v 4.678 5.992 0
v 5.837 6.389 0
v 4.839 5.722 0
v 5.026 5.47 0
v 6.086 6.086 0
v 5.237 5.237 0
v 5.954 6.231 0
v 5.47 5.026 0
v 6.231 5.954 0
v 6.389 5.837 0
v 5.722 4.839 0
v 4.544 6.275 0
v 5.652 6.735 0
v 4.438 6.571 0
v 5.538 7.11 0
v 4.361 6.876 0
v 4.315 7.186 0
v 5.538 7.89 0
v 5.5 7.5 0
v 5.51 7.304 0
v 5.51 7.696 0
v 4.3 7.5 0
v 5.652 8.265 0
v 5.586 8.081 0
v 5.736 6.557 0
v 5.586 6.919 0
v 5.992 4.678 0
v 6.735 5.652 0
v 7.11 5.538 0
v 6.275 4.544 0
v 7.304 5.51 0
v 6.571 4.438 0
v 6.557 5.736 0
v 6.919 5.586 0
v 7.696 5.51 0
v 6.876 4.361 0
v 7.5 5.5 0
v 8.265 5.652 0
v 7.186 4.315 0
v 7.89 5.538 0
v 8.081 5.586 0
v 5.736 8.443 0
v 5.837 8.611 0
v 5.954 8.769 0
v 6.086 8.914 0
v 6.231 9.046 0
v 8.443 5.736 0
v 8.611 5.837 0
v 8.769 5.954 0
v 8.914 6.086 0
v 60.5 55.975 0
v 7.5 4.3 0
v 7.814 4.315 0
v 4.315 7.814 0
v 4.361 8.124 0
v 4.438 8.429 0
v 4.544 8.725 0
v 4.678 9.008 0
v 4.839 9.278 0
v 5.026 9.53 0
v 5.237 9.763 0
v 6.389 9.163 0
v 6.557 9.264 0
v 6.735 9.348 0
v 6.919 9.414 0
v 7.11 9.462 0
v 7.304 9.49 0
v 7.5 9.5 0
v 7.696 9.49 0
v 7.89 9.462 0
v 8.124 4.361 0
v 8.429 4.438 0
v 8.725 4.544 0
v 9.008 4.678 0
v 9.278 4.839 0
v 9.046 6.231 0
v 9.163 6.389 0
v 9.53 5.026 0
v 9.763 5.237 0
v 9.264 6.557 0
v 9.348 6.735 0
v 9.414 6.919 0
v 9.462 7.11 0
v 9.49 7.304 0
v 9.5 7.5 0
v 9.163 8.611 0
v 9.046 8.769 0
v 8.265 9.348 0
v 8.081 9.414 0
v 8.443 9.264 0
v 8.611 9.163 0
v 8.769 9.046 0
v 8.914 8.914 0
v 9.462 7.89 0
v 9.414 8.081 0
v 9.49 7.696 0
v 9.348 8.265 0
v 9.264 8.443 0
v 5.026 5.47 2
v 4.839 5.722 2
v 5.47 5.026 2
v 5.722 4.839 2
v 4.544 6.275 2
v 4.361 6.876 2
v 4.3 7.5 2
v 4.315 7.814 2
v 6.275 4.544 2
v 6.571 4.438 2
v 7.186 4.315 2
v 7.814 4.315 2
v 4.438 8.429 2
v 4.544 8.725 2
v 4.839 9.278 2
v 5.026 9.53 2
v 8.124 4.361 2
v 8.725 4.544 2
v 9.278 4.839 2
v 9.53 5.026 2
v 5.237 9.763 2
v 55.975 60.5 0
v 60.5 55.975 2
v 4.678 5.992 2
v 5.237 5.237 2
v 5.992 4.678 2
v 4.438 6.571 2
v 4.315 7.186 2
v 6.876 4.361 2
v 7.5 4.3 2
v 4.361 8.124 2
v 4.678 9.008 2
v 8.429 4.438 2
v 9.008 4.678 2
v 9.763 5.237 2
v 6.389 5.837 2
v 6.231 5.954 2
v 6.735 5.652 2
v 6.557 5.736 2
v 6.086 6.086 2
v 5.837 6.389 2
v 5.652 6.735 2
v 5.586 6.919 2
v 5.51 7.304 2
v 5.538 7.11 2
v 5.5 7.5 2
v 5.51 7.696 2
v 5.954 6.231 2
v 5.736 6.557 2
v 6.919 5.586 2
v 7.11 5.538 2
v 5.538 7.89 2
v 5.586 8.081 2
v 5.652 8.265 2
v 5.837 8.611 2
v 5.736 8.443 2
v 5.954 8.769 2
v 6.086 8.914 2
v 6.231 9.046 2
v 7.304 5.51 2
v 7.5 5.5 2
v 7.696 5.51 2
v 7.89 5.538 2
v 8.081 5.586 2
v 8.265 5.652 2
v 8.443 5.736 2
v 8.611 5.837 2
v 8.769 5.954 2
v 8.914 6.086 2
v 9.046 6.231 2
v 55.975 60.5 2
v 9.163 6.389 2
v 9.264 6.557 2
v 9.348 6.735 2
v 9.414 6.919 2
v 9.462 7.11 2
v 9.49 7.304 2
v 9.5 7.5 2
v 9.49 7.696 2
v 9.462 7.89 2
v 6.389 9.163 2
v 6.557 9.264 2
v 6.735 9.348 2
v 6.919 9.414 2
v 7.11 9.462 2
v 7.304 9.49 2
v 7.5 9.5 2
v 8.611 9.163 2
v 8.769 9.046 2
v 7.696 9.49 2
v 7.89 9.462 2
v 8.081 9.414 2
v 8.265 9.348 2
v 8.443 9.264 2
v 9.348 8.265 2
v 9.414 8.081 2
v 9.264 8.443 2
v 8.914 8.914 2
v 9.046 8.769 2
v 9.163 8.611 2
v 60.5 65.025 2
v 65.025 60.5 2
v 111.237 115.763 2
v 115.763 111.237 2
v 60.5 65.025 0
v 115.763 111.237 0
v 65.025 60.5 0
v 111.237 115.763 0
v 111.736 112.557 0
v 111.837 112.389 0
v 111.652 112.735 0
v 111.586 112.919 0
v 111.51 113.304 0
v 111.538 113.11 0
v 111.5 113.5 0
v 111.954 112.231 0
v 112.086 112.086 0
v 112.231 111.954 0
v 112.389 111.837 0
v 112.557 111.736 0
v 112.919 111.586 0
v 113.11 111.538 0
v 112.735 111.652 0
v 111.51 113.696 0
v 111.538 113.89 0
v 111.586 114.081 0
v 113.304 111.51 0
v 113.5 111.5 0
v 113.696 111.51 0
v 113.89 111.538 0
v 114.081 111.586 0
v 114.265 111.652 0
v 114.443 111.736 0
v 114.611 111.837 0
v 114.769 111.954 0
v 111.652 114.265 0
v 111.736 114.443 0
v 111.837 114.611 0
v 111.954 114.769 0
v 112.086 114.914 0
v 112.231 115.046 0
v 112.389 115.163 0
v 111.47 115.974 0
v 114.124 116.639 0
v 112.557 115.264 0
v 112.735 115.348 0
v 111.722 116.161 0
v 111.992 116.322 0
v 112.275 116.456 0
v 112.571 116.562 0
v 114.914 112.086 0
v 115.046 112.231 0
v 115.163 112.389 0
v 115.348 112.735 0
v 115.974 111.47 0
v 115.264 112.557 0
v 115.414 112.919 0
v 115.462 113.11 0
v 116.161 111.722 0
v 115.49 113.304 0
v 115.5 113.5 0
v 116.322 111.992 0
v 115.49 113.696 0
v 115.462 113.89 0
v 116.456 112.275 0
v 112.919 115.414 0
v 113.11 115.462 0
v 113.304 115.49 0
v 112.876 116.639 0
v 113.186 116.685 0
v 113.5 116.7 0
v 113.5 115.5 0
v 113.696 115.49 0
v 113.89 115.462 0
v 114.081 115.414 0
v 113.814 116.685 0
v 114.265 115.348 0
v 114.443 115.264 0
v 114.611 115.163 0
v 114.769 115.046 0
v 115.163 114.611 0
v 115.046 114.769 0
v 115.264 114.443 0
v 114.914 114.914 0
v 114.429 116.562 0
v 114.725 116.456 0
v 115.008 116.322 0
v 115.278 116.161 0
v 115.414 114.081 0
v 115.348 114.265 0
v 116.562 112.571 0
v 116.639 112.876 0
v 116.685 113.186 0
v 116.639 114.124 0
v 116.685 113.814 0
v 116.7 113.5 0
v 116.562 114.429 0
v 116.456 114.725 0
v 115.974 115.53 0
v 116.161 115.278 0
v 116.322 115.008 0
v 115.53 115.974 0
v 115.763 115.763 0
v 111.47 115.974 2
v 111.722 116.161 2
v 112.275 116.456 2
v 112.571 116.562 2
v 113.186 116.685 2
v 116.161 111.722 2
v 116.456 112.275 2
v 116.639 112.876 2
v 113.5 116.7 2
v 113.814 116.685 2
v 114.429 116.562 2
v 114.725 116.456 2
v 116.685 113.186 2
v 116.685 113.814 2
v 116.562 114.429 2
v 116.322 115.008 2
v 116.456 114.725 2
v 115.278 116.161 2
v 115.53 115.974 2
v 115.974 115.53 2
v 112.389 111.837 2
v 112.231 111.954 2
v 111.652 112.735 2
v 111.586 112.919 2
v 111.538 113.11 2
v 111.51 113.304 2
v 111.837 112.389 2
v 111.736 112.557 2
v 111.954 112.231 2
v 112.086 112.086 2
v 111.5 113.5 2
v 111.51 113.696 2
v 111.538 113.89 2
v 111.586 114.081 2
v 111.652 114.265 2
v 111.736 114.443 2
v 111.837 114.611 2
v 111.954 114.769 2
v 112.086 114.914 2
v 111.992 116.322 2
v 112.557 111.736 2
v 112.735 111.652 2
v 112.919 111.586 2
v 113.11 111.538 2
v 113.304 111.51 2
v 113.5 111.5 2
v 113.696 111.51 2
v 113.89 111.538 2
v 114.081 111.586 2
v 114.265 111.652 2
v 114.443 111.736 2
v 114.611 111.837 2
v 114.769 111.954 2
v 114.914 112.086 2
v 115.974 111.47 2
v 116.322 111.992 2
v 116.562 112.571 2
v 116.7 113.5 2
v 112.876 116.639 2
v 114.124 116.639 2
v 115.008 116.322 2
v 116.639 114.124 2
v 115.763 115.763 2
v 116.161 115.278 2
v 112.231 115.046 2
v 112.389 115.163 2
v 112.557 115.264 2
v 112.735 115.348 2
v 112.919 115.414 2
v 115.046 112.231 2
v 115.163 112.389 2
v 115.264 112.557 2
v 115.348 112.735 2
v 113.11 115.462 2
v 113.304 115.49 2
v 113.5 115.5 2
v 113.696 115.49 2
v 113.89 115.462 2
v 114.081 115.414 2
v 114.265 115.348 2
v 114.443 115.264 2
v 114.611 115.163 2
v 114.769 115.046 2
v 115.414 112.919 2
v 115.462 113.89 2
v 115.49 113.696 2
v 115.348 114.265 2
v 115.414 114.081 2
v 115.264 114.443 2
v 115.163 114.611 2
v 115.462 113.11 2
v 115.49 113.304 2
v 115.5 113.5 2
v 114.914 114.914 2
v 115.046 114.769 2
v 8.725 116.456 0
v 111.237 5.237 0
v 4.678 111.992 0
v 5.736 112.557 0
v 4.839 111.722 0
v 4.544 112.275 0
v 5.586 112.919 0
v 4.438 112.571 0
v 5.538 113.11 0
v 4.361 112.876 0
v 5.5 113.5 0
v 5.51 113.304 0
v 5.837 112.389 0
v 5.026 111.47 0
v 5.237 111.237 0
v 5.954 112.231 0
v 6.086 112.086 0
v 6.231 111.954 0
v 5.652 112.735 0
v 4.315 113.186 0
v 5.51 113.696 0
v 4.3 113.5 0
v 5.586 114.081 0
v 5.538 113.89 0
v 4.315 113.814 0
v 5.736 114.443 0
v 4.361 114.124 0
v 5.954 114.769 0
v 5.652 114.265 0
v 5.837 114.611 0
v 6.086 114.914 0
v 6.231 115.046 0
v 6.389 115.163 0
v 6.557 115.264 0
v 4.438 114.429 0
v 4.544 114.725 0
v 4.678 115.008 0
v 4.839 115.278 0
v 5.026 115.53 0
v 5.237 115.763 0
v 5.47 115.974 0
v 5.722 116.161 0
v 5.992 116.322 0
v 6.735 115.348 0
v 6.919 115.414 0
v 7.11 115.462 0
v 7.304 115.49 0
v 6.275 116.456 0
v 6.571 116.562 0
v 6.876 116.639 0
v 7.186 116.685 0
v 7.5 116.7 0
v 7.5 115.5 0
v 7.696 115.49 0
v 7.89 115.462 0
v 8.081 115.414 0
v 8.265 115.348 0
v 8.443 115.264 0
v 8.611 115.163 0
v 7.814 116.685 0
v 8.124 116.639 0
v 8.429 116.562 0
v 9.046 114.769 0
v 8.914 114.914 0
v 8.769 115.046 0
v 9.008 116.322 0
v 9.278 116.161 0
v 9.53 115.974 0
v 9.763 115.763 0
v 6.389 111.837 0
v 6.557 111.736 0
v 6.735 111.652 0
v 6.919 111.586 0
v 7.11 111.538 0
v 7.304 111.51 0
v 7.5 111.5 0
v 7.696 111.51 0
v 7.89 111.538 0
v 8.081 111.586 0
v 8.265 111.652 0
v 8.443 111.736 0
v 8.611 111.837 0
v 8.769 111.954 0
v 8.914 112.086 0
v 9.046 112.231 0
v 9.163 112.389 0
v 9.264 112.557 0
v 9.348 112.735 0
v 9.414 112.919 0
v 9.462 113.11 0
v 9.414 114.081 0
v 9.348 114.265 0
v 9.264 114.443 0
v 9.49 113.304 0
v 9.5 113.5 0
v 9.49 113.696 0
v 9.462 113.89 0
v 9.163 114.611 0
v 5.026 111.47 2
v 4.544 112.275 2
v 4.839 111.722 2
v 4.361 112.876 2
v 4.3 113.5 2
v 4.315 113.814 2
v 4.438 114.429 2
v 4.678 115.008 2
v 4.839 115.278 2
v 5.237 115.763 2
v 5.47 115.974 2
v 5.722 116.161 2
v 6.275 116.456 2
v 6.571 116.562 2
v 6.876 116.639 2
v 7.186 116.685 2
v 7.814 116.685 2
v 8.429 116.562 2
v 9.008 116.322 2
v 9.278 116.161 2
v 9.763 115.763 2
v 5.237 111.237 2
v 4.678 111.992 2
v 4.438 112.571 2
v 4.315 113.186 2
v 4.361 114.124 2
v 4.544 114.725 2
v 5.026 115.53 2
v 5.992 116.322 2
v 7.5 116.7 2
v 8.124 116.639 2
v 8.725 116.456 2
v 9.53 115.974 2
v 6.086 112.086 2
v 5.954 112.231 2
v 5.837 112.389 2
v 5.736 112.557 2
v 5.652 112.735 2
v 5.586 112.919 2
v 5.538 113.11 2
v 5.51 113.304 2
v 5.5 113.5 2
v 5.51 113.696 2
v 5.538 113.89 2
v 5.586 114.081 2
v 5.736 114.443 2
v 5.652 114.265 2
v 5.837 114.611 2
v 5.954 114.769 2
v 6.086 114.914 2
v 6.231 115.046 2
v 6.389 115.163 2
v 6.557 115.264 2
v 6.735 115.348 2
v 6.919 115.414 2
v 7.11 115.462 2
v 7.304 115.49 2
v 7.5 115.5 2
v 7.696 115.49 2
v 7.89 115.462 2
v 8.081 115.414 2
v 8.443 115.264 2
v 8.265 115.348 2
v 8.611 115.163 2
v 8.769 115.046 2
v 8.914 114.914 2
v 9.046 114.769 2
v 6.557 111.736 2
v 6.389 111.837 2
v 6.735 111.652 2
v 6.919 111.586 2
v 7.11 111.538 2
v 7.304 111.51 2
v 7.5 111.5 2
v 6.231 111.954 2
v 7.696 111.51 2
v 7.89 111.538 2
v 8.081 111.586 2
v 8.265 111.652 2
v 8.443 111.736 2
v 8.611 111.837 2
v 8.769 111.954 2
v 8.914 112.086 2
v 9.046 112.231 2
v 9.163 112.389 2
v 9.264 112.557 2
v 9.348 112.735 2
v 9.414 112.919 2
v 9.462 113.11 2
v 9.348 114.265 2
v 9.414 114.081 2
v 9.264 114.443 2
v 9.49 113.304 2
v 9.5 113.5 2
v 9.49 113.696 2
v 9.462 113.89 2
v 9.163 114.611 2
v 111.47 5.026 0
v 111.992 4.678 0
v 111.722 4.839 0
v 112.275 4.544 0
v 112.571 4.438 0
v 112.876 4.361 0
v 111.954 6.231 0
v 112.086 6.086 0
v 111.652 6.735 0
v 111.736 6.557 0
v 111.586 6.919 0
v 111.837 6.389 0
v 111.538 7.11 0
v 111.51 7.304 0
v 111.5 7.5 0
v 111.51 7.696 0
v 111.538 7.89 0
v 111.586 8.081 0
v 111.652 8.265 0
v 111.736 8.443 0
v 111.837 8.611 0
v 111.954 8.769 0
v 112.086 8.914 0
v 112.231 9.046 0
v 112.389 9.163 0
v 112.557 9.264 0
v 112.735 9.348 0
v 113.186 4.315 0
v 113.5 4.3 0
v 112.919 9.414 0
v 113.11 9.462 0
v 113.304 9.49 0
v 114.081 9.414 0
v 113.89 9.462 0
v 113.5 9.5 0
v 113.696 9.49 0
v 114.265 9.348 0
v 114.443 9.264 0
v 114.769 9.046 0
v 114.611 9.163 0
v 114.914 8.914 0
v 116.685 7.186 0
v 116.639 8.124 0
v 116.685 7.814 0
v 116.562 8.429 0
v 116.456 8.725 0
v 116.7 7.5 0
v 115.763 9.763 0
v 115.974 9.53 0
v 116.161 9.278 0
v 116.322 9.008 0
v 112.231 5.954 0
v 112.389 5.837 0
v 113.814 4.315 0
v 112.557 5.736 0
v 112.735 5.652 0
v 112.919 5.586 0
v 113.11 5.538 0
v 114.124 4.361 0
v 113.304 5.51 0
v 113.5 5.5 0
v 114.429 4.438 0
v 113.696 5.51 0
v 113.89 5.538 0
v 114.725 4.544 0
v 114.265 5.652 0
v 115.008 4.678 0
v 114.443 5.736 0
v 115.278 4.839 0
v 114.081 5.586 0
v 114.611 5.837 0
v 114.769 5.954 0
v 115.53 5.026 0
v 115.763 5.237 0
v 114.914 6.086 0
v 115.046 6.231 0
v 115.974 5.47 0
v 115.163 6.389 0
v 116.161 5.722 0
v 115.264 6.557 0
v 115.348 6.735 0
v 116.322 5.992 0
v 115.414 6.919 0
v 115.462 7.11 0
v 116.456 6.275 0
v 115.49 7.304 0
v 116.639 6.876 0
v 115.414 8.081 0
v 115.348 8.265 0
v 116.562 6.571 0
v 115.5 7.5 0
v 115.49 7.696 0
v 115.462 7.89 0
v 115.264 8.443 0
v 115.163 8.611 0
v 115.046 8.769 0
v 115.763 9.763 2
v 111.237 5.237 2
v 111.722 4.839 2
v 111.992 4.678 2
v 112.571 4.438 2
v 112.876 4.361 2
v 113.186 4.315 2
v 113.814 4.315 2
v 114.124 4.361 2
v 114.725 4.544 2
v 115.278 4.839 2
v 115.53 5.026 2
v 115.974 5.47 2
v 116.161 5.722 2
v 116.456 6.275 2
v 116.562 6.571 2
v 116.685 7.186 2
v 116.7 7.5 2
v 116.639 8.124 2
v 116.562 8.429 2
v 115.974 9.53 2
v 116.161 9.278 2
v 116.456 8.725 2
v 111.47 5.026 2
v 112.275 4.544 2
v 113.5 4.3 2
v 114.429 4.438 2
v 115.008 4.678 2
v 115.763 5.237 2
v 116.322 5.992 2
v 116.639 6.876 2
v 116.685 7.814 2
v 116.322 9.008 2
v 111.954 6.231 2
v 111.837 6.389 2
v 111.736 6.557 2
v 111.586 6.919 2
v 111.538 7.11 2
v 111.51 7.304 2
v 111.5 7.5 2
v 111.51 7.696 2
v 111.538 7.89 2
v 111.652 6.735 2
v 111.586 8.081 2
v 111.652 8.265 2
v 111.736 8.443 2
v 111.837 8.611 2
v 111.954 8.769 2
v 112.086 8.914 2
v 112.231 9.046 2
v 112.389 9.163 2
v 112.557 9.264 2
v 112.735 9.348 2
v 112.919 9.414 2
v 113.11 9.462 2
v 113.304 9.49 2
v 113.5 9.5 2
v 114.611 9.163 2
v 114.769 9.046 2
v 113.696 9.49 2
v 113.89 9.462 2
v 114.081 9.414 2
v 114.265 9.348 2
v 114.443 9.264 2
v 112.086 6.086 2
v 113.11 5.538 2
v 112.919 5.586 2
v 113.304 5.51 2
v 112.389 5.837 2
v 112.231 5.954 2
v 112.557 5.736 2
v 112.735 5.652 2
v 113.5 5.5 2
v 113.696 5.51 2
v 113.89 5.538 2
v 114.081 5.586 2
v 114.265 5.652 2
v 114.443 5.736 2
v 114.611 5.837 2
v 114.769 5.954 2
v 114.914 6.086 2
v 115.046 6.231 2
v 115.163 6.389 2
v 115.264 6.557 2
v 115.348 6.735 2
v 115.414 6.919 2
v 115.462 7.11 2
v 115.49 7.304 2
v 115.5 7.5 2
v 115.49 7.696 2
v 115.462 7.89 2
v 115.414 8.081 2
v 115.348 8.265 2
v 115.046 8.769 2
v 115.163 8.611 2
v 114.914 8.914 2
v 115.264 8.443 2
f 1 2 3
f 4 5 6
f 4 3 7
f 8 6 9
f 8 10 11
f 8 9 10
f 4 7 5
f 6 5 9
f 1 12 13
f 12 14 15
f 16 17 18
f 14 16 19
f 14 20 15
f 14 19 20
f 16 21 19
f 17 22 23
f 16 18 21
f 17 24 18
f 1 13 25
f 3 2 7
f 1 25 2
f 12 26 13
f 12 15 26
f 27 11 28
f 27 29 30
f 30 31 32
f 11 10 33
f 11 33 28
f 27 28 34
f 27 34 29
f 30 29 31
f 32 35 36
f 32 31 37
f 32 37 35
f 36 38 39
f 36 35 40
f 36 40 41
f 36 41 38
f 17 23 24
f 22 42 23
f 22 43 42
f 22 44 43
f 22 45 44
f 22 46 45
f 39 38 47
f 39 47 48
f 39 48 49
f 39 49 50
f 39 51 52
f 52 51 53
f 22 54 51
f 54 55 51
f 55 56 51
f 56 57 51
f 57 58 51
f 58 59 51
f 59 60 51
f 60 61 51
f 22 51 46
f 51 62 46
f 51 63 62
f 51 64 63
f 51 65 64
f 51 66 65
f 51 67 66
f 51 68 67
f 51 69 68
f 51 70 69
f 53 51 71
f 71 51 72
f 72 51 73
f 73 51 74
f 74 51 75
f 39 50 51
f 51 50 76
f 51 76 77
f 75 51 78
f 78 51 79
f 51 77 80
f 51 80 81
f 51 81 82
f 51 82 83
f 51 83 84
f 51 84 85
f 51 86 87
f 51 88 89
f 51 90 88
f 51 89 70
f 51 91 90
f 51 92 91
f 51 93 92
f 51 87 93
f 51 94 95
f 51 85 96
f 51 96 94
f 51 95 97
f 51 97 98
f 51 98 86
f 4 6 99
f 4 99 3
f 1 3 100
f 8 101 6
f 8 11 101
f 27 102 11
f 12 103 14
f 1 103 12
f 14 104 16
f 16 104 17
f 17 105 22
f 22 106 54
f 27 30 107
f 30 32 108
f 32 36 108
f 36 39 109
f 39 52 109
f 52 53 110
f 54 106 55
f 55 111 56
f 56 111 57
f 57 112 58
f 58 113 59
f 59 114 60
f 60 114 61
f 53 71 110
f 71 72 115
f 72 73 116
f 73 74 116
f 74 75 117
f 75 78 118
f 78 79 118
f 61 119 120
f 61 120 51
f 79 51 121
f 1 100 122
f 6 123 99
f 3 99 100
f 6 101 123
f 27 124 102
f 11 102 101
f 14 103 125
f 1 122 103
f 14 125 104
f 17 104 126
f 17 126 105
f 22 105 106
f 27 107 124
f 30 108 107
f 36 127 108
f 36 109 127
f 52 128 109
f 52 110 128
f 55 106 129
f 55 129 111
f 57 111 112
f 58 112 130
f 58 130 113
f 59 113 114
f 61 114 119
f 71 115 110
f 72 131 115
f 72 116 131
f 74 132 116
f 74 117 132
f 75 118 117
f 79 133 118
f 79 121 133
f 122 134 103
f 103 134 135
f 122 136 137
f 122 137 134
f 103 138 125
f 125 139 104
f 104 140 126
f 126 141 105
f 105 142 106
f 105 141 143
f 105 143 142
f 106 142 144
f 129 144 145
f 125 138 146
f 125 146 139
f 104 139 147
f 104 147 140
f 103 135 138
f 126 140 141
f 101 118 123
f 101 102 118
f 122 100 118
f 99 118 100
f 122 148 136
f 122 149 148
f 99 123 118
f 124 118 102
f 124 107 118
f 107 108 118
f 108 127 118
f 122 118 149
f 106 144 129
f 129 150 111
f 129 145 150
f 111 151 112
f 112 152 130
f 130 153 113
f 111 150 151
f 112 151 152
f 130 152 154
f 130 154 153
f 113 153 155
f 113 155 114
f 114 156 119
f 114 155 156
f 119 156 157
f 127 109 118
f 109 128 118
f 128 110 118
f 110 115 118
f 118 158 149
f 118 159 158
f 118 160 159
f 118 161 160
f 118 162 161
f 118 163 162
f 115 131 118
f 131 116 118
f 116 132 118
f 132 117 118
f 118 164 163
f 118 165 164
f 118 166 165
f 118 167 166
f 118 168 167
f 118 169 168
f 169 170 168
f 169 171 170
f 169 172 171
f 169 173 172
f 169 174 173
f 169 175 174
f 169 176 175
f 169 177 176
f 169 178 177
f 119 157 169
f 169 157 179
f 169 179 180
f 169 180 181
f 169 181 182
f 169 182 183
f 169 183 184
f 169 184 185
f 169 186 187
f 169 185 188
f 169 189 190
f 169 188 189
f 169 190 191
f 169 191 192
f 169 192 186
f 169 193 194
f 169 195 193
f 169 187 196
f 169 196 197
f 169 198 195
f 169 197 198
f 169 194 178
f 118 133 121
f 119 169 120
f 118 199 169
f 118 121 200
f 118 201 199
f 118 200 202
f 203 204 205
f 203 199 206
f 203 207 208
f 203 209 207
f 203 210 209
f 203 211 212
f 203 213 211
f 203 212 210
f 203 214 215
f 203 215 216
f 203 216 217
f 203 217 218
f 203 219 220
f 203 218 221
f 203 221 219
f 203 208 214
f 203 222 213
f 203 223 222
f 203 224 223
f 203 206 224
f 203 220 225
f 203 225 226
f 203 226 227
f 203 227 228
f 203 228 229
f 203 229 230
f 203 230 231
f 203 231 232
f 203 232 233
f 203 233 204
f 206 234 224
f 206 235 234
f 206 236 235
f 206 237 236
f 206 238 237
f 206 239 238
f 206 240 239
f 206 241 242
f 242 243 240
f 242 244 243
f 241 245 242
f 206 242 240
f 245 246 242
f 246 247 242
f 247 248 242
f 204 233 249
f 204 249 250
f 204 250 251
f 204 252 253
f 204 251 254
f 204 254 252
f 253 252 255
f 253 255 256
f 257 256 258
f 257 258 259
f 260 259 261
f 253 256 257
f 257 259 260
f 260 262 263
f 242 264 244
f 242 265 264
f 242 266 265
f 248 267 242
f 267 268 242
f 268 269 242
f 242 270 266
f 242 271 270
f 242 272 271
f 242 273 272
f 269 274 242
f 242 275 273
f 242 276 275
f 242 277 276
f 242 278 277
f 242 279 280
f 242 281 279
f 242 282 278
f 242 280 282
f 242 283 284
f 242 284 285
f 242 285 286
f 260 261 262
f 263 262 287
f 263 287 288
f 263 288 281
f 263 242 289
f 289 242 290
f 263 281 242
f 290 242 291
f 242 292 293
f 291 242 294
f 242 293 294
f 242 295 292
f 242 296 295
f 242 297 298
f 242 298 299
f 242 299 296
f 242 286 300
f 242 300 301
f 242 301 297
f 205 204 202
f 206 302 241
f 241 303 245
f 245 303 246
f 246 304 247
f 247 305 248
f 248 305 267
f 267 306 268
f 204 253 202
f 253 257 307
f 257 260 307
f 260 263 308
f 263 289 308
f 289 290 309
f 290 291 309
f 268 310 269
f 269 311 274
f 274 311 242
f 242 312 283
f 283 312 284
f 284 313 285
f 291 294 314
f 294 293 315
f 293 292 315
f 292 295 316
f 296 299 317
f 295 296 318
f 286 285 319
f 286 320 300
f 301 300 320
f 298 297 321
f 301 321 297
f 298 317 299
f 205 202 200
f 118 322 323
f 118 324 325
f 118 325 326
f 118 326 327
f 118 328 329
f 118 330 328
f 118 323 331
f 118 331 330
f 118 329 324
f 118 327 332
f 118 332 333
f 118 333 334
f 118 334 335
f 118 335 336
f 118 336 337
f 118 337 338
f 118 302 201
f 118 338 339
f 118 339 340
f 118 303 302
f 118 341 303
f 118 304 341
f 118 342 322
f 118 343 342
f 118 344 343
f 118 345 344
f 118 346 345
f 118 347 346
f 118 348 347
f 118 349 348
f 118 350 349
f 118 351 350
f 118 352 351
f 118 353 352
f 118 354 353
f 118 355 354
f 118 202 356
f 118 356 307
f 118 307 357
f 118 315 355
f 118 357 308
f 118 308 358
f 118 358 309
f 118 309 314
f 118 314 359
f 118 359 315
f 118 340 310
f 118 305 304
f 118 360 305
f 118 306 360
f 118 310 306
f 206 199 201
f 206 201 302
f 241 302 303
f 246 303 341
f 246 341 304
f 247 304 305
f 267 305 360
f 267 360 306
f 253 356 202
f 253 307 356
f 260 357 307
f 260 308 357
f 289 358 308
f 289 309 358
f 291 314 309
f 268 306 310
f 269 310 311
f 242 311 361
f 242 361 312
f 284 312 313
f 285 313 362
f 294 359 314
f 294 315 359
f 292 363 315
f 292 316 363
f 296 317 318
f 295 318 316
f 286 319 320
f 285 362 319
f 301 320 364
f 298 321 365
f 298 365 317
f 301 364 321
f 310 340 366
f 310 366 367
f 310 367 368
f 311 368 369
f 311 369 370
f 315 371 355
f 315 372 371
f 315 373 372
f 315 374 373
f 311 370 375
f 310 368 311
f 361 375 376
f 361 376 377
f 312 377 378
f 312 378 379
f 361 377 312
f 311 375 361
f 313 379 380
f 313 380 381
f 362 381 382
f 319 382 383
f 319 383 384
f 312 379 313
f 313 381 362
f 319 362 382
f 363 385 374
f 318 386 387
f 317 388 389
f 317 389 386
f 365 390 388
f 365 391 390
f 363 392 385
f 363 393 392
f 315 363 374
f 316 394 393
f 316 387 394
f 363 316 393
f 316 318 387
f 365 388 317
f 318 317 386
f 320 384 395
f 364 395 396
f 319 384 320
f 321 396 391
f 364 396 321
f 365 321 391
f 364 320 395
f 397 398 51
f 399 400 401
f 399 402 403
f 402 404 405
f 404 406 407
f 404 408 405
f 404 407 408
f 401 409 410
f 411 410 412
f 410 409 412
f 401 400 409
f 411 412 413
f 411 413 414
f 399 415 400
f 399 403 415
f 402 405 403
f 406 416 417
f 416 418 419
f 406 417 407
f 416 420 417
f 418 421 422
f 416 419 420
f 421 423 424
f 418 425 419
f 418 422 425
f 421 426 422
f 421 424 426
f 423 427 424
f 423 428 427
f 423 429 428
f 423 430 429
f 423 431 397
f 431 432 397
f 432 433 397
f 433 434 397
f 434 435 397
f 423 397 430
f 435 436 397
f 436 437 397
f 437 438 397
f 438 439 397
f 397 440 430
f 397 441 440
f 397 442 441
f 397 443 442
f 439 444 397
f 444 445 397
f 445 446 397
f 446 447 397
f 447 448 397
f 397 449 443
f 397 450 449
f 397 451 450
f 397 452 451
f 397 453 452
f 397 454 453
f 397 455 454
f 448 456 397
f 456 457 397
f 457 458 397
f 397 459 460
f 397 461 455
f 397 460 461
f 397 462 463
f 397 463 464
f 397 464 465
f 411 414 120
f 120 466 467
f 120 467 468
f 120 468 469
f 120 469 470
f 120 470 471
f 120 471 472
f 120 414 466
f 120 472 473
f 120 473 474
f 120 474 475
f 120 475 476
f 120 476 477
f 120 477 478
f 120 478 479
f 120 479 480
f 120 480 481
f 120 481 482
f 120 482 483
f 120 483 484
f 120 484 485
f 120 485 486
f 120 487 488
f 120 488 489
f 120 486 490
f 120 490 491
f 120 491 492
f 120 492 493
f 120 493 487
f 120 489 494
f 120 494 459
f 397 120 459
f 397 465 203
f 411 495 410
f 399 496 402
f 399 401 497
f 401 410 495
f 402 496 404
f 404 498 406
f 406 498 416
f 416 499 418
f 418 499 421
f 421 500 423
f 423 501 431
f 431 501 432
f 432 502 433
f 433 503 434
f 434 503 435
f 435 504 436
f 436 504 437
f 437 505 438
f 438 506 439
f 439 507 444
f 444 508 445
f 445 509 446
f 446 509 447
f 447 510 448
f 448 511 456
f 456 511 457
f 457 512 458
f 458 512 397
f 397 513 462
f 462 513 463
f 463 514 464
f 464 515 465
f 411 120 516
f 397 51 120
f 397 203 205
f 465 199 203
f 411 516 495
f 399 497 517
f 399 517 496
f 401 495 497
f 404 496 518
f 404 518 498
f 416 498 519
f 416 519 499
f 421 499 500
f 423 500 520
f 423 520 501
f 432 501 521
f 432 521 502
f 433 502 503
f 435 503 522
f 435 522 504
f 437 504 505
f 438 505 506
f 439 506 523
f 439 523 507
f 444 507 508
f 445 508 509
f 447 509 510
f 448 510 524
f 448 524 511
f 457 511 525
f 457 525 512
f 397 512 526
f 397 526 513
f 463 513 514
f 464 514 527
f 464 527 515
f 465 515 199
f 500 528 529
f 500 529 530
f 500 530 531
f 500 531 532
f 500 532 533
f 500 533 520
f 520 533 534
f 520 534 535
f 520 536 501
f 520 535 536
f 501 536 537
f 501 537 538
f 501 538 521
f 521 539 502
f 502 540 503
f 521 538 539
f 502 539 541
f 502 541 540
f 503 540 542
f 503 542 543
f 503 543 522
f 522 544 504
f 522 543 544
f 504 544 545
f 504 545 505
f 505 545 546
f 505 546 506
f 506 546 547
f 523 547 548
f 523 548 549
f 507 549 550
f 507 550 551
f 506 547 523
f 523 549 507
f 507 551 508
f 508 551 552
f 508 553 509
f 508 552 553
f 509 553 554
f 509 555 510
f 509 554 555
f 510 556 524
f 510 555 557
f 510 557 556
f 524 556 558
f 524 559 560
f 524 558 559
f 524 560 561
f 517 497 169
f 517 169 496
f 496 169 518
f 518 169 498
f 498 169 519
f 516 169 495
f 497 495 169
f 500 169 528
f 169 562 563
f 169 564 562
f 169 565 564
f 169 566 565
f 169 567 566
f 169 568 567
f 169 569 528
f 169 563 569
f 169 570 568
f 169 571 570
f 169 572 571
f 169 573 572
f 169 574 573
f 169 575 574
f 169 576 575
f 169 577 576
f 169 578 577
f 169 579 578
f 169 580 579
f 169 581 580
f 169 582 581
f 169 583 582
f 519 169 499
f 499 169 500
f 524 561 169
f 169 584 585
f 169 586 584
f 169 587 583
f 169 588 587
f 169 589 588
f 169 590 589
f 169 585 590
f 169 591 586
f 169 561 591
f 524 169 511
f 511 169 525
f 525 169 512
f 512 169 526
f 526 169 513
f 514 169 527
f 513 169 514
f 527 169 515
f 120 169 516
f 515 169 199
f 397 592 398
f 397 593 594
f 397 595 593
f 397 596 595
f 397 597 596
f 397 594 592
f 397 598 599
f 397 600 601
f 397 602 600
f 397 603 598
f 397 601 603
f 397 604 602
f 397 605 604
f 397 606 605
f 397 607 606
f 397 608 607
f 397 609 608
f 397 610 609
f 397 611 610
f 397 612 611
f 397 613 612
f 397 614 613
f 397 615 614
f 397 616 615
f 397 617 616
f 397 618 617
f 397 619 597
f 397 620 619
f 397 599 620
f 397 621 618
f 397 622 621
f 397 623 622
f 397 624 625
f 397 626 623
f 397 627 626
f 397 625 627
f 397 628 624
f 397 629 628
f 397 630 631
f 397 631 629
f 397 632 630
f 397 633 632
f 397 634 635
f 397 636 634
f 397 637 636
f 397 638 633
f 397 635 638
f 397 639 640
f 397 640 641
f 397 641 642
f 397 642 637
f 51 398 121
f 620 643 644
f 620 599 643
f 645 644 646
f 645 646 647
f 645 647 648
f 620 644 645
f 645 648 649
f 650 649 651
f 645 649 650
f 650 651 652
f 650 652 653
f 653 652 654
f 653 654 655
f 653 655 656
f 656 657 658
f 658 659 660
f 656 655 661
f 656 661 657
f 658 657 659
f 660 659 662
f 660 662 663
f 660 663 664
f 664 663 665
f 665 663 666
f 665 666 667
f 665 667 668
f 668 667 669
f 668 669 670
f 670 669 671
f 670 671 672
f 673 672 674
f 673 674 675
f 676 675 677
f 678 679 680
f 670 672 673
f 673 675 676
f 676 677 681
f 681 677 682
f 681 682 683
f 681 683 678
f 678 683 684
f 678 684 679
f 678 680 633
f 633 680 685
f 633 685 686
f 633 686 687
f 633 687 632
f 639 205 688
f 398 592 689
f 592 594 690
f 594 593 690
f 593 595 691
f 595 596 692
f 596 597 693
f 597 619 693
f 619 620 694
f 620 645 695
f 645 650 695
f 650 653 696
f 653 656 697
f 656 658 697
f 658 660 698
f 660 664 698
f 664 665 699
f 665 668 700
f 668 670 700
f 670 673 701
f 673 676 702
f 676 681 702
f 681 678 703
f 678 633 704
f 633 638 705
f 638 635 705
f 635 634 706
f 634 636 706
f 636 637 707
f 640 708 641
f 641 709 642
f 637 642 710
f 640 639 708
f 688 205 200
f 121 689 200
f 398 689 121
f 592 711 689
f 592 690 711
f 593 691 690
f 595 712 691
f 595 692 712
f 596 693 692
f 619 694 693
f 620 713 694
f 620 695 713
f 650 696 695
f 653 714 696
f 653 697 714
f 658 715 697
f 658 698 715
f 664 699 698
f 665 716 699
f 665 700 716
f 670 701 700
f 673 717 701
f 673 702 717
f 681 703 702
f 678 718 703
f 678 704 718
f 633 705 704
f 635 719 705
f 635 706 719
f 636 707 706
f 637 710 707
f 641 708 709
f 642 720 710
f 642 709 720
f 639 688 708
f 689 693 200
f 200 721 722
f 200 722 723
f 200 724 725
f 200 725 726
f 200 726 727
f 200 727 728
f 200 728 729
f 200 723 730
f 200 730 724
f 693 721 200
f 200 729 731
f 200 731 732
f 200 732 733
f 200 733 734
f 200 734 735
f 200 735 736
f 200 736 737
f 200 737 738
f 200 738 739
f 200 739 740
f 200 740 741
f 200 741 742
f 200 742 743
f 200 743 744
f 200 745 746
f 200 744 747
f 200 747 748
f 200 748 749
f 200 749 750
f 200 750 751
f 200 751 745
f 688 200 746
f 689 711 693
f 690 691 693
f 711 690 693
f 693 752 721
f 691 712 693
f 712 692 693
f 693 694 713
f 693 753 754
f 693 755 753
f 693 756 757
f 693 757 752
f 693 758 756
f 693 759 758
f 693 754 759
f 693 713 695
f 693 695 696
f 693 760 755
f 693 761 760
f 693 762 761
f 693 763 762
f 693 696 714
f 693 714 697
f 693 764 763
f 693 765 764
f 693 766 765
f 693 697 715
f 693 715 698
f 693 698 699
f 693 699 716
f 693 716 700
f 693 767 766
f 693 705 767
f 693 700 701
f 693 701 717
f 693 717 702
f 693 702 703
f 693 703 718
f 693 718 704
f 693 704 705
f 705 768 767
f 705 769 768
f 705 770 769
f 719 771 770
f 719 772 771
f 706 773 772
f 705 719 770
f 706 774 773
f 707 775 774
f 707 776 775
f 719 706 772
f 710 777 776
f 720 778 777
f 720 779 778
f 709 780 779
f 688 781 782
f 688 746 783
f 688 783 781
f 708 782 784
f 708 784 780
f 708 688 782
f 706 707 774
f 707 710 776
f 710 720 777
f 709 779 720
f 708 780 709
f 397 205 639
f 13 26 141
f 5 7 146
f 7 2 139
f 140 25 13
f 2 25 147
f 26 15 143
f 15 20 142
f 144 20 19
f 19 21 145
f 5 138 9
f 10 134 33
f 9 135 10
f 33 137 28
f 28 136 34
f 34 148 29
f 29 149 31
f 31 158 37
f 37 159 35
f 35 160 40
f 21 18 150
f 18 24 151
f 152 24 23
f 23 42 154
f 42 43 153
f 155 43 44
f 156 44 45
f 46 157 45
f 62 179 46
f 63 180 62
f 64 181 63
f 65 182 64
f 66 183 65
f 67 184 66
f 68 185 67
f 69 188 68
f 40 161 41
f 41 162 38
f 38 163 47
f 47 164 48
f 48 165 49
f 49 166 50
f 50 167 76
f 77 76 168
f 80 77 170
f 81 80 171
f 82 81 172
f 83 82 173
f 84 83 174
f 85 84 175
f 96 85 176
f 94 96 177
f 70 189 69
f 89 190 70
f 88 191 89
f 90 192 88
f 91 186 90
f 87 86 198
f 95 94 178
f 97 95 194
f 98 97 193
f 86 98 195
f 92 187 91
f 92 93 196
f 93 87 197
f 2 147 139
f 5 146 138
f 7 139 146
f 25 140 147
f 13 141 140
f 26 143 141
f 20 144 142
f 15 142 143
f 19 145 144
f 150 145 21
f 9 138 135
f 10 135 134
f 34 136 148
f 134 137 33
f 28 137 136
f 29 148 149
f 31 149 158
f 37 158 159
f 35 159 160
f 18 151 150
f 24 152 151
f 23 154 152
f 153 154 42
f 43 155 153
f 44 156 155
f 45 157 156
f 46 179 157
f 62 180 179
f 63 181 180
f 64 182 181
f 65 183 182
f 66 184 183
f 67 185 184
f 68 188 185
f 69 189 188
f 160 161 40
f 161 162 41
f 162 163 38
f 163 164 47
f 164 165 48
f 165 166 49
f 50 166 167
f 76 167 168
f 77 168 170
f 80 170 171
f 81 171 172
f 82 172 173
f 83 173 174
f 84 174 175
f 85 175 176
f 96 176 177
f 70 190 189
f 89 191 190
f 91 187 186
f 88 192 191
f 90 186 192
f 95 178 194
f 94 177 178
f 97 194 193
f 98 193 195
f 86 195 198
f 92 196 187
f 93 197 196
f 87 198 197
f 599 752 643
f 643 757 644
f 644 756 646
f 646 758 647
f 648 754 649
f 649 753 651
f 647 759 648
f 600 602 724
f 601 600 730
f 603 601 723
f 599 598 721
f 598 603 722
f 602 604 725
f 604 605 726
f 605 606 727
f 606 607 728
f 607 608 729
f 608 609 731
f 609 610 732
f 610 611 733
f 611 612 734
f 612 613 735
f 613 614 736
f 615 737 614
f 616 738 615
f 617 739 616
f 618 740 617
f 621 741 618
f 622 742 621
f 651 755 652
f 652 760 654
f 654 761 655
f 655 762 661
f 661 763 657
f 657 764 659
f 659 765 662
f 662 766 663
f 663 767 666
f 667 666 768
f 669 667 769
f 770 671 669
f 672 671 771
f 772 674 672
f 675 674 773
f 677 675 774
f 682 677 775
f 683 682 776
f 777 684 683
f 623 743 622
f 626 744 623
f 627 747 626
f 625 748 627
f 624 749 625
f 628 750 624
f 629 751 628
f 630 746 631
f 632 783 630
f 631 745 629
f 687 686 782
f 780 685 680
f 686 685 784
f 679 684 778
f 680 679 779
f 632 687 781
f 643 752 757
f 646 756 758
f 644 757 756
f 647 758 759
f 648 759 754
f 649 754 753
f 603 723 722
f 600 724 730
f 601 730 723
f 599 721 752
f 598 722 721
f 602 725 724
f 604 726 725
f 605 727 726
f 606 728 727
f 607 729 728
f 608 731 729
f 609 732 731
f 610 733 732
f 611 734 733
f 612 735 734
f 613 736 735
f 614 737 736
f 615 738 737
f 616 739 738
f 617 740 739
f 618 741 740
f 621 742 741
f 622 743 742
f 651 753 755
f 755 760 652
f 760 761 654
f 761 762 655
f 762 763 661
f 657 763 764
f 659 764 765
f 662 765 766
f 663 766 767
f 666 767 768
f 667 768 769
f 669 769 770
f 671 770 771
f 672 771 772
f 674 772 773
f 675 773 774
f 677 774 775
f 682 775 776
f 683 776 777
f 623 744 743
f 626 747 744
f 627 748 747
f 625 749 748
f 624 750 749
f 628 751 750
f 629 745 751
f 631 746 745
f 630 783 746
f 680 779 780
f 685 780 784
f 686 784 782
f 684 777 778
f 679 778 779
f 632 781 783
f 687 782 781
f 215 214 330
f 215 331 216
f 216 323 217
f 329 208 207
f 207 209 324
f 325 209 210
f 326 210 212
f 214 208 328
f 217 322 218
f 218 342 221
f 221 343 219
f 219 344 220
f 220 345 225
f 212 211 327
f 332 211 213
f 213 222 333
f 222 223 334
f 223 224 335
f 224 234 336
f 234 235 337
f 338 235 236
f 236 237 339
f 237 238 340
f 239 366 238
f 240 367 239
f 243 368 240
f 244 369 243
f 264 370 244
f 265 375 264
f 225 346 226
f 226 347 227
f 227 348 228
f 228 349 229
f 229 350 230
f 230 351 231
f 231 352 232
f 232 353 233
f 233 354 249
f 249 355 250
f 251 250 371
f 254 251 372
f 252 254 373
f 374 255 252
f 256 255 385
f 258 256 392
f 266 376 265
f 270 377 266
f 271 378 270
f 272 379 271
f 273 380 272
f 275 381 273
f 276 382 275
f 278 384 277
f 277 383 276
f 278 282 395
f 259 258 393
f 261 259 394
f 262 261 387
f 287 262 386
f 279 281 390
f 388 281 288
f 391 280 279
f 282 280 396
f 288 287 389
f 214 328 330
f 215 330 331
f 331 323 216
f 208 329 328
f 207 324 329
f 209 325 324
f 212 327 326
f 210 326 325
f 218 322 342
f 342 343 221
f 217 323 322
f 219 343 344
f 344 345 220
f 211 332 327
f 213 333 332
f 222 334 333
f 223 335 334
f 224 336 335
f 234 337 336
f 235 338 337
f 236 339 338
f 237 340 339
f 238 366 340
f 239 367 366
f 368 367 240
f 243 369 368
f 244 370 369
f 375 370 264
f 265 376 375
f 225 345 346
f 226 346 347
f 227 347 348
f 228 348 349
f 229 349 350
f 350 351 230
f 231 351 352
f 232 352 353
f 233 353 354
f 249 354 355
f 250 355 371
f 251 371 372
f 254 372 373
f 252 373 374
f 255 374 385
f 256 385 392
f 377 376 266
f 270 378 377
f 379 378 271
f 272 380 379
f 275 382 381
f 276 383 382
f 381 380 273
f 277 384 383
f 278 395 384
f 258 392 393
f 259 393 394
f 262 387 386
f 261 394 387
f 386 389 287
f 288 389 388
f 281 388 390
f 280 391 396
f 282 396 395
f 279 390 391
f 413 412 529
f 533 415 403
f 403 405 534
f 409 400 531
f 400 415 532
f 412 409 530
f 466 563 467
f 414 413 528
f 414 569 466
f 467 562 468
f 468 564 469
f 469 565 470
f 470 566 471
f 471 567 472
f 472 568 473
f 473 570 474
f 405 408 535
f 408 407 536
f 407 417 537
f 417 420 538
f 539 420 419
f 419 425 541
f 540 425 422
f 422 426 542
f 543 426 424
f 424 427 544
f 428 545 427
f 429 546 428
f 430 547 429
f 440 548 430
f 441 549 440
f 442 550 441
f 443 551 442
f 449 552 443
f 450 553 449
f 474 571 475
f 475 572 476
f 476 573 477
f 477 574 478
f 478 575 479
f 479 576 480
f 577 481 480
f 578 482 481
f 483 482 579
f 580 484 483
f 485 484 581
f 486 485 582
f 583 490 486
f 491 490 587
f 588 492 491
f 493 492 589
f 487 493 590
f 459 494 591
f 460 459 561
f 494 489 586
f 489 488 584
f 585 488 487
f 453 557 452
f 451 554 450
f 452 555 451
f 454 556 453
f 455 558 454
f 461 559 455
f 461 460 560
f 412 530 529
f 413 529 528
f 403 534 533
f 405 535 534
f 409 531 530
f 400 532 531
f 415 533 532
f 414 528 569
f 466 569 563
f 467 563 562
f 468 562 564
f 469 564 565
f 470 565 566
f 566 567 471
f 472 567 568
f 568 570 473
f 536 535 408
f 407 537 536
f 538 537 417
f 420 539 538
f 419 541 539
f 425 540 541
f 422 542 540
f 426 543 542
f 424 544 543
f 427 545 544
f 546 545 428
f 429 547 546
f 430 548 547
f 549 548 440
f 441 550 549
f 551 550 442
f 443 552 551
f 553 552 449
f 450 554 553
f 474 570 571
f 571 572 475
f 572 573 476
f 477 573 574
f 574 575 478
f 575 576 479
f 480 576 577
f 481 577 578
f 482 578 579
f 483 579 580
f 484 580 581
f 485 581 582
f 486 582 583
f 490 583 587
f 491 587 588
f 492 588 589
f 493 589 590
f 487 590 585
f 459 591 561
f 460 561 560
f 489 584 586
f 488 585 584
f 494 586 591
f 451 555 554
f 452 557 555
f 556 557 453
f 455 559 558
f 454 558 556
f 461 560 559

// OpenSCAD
edge = 121;
border_radius = 8;
bottom_height = 1.5;

overlap_height = 9;
filter_height = 10;
height = overlap_height + filter_height;

$fn=64;

module base() {
  difference() {
    hull() {
      translate([border_radius,border_radius,0]) cylinder(r = 8, h = height);
      translate([edge - border_radius,border_radius,0]) cylinder(r = 8, h = height);
      translate([border_radius,edge - border_radius,0]) cylinder(r = 8, h = height);
      translate([edge - border_radius,edge - border_radius,0]) cylinder(r = 8, h = height);
    };

    hull() {
      translate([border_radius + 1,border_radius + 1, bottom_height]) cylinder(r = 8, h = height);
      translate([edge - border_radius - 1,border_radius + 1,bottom_height]) cylinder(r = 8, h = height);
      translate([border_radius + 1,edge - border_radius - 1, bottom_height]) cylinder(r = 8, h = height);
      translate([edge - border_radius - 1,edge - border_radius - 1, bottom_height]) cylinder(r = 8, h = height);
    };
  }
}

module mounts() {
  translate([7.5,7.5,0]) cylinder(r1=2,r2=1.7, h=height);
  translate([edge - 7.5,7.5,0]) cylinder(r1=2,r2=1.7, h=height);
  translate([edge - 7.5, edge - 7.5,0]) cylinder(r1=2,r2=1.7, h=height);
  translate([7.5, edge - 7.5,0]) cylinder(r1=2,r2=1.7, h=height);
}

module base_with_cutout() {
  difference() {
    base();
    translate([edge/2,edge/2, -0.1]) cylinder(r = edge / 2.1, h = 3);
  }
  mounts();
};


module mount_holes() {
  translate([7.5,7.5,0]) cylinder(r=2, h=height);
  translate([edge - 7.5,7.5,0]) cylinder(r=2, h=height);
  translate([edge - 7.5, edge - 7.5,0]) cylinder(r=2, h=height);
  translate([7.5, edge - 7.5,0]) cylinder(r=2, h=height);
}


module grid() {
  difference() {
    union() {
      hull() {
        translate([7.5,7.5,0]) cylinder(r=3.2, h=2);
        translate([edge - 7.5, edge - 7.5,0]) cylinder(r=3.2, h=2);
      }

      hull() {
        translate([edge - 7.5,7.5,0]) cylinder(r=3.2, h=2);
        translate([7.5, edge - 7.5,0]) cylinder(r=3.2, h=2);
      }
    }
    translate([0,0,-0.1]) mount_holes();
  }
}

grid();
// base_with_cutout();
